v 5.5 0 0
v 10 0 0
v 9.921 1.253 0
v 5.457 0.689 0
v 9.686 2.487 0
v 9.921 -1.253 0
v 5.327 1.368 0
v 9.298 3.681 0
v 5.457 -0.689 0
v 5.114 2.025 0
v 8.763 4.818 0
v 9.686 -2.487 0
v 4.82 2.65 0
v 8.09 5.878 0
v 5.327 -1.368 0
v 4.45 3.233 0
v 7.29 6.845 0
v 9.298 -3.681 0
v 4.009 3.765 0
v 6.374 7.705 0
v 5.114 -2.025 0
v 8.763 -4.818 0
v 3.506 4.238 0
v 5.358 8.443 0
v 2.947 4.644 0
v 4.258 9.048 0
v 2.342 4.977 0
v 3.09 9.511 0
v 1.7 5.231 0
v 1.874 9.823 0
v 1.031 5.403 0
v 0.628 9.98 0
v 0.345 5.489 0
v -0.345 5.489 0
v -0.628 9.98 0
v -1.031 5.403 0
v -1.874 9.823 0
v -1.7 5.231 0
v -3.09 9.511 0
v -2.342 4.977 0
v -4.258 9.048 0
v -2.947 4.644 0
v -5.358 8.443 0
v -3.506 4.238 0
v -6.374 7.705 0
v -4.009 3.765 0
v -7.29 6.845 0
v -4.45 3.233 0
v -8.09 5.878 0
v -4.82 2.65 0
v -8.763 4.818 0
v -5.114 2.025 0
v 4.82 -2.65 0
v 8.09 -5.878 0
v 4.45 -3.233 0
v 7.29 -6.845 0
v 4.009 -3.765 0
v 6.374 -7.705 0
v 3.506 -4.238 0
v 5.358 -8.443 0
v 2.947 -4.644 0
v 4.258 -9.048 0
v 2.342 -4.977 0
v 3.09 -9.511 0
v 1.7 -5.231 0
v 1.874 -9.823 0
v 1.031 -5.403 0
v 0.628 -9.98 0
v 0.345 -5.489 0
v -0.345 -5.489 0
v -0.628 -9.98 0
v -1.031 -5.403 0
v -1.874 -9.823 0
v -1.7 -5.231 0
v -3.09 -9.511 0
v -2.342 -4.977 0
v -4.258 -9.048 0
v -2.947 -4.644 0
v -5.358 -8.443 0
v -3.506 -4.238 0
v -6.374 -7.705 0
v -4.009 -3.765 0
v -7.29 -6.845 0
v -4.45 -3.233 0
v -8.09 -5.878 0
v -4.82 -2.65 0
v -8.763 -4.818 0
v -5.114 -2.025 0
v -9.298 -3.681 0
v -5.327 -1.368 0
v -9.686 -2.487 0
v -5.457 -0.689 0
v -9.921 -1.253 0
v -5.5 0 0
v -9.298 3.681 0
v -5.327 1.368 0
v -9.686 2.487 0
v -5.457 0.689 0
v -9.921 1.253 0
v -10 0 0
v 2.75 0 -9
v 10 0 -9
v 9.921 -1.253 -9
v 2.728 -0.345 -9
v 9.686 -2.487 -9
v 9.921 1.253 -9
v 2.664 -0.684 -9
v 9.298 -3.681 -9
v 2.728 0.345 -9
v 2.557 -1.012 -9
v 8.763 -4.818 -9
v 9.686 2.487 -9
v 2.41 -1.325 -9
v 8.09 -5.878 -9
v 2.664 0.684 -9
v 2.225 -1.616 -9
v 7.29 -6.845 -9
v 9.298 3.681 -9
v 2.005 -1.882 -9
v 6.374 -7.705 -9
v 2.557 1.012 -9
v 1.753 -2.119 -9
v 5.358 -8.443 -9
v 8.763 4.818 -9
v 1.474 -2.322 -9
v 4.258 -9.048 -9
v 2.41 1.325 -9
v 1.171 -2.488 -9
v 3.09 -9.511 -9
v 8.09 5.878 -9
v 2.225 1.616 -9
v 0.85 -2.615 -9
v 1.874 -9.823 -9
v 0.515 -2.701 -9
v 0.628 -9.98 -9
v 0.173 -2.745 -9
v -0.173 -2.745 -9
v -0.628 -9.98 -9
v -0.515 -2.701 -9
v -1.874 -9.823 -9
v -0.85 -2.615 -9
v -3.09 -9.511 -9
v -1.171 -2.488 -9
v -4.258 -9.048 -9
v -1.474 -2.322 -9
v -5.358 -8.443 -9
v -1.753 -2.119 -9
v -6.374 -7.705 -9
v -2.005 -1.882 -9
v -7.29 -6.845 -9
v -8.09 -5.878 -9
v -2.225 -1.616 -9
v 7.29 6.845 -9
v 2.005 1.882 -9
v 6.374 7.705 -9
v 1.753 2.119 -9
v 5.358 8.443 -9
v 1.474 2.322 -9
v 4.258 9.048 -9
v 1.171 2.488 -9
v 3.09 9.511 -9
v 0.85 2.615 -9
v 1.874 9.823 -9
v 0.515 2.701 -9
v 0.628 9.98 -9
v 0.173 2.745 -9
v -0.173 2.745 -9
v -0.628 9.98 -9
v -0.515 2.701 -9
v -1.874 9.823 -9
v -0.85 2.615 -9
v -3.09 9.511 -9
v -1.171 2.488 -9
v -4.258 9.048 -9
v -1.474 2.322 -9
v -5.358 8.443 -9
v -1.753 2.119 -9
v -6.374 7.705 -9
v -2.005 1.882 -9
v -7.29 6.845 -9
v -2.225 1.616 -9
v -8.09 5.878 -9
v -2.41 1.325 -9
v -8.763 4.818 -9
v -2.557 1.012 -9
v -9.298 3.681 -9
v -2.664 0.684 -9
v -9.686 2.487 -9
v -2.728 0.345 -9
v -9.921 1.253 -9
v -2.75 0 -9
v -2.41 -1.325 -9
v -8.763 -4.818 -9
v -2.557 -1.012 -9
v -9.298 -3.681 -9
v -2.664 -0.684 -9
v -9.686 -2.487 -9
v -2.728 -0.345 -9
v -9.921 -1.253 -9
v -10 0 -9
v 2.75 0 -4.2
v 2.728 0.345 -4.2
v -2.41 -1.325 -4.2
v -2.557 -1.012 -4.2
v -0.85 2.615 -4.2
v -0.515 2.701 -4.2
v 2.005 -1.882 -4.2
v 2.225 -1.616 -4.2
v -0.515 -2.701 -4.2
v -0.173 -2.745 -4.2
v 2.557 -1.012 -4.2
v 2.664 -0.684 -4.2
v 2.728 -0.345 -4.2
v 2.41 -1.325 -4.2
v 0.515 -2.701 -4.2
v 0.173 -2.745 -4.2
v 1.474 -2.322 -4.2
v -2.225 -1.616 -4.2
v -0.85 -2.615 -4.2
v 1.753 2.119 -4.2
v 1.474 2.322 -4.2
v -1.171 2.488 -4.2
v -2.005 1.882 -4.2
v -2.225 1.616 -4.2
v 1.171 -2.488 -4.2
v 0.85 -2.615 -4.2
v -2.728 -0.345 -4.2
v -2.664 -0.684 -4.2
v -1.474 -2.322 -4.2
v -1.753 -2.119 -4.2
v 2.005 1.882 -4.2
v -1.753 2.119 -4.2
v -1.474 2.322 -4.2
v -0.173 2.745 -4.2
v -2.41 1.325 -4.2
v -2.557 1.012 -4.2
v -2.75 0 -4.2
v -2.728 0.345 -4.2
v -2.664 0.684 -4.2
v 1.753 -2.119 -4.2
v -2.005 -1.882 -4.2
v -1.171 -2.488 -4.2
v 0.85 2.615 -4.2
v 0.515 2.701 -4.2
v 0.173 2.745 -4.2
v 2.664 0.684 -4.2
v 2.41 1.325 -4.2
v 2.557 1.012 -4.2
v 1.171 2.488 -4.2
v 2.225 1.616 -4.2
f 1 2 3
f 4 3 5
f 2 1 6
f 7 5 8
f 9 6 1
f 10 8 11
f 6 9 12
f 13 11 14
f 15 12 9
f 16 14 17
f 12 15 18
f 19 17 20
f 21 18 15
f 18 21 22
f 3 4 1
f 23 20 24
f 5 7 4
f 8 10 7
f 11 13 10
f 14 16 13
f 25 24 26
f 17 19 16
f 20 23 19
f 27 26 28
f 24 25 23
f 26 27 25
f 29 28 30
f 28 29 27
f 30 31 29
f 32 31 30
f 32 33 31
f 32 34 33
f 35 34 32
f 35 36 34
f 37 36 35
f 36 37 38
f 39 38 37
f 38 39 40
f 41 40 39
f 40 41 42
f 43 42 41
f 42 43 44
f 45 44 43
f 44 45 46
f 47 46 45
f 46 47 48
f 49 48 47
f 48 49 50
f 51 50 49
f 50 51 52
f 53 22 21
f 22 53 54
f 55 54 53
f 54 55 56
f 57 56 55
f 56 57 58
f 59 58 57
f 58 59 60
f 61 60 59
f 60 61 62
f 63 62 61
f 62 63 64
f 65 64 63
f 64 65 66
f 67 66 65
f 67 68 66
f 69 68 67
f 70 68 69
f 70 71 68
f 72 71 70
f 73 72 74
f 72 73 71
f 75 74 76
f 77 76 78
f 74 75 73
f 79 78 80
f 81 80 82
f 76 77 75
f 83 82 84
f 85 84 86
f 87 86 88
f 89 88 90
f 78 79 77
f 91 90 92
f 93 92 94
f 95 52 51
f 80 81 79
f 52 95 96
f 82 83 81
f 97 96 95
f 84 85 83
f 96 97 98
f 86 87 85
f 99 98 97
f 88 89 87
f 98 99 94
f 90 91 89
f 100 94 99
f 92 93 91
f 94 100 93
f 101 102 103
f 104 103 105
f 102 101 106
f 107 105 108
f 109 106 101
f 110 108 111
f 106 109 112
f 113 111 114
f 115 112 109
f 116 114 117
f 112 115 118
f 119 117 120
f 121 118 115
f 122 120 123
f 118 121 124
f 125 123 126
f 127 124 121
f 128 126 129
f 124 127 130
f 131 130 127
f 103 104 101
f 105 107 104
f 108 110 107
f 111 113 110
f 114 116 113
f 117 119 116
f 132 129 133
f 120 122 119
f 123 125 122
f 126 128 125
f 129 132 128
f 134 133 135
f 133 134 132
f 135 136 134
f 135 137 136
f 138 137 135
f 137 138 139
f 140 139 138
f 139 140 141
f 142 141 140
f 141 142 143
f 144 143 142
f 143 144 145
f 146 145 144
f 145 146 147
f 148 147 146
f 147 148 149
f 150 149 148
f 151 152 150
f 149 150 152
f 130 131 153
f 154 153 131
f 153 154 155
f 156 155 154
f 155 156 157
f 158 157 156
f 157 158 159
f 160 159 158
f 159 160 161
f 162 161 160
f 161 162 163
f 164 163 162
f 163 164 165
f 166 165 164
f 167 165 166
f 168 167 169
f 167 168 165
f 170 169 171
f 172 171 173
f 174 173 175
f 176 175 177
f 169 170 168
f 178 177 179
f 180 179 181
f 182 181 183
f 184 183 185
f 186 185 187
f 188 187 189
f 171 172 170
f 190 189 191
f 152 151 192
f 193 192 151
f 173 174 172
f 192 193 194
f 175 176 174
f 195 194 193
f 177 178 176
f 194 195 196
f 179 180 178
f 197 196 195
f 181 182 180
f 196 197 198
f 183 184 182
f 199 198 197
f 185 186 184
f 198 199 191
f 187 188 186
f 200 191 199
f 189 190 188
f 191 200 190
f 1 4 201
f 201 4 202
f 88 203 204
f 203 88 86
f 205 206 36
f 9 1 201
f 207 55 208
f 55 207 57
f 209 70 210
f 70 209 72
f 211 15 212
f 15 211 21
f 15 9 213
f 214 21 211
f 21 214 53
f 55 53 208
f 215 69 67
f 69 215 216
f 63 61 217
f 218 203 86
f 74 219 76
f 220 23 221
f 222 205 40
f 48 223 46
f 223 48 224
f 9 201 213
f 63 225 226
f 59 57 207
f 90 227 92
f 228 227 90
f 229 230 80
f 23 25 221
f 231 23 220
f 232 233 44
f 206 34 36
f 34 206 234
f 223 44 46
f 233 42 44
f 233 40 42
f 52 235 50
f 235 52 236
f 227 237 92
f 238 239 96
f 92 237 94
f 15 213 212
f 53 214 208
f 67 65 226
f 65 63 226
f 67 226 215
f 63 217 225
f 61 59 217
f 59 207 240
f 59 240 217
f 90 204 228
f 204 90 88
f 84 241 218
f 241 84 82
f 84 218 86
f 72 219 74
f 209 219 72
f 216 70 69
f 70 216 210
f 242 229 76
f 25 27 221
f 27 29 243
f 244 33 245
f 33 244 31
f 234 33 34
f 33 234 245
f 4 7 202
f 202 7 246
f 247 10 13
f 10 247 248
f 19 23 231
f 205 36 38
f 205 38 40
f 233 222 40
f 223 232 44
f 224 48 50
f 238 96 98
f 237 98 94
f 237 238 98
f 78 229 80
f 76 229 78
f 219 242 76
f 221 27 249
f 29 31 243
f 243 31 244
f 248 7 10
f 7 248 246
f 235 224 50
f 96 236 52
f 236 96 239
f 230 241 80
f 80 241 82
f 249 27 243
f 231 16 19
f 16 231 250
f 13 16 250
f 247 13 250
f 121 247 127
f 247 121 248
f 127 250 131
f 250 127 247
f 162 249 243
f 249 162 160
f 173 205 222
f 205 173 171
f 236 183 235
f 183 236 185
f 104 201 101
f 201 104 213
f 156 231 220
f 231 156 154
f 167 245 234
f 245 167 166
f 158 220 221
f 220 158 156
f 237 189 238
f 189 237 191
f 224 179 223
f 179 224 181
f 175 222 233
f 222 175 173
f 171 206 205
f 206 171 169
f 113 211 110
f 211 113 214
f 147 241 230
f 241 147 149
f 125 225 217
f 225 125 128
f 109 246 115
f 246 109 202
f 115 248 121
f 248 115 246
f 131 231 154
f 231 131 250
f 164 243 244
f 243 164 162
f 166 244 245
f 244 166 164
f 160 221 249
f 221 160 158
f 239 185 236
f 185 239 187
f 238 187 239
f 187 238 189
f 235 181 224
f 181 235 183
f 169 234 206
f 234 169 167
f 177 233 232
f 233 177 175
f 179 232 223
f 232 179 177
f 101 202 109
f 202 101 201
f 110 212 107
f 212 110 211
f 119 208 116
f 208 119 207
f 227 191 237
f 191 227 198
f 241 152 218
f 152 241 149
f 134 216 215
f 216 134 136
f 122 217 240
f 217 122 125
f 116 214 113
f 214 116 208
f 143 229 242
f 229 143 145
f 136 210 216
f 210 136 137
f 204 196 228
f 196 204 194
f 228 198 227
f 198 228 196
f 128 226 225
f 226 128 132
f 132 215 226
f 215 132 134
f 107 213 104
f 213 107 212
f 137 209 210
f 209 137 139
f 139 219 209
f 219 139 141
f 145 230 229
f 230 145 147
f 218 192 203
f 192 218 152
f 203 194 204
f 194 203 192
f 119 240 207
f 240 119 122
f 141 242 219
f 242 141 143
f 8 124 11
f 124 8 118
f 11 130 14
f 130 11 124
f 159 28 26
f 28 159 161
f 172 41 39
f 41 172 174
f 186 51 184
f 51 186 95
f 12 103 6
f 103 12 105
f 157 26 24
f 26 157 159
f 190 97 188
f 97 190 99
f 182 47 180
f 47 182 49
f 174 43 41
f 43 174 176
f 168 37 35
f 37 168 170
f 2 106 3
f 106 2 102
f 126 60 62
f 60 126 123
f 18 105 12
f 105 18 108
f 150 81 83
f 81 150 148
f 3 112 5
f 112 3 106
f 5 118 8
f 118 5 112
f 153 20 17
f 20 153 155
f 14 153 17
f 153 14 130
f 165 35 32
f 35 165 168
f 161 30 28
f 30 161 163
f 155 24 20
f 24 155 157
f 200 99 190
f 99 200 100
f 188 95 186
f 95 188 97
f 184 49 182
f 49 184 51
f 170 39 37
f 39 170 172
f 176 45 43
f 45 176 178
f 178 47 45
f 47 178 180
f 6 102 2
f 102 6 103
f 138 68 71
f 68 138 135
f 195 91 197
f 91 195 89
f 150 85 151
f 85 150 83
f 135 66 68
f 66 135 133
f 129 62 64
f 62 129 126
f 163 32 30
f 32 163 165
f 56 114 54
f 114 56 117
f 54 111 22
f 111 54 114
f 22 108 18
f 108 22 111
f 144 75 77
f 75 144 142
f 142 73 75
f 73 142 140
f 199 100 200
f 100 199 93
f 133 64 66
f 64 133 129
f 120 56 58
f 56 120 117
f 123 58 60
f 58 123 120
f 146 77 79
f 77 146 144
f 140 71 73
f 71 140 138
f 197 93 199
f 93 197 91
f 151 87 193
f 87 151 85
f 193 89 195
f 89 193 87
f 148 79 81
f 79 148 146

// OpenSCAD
$fn = 50;


difference() {
	union() {
		translate(v = [0, 0, -9.0000000000]) {
			cylinder(h = 9, r = 10.0000000000);
		}
		cylinder(h = 0, r = 13.0000000000);
	}
	union() {
		translate(v = [0, 0, 0]) {
			rotate(a = [0, 0, 0]) {
				difference() {
					union() {
						#translate(v = [0, 0, -9.0000000000]) {
							cylinder(h = 9, r = 2.2500000000);
						}
						#translate(v = [0, 0, -4.2000000000]) {
							cylinder(h = 4.2000000000, r1 = 2.7500000000, r2 = 5.5000000000);
						}
						#translate(v = [0, 0, -9.0000000000]) {
							cylinder(h = 9, r = 2.7500000000);
						}
						#translate(v = [0, 0, -9.0000000000]) {
							cylinder(h = 9, r = 2.2500000000);
						}
					}
					union();
				}
			}
		}
	}
}
